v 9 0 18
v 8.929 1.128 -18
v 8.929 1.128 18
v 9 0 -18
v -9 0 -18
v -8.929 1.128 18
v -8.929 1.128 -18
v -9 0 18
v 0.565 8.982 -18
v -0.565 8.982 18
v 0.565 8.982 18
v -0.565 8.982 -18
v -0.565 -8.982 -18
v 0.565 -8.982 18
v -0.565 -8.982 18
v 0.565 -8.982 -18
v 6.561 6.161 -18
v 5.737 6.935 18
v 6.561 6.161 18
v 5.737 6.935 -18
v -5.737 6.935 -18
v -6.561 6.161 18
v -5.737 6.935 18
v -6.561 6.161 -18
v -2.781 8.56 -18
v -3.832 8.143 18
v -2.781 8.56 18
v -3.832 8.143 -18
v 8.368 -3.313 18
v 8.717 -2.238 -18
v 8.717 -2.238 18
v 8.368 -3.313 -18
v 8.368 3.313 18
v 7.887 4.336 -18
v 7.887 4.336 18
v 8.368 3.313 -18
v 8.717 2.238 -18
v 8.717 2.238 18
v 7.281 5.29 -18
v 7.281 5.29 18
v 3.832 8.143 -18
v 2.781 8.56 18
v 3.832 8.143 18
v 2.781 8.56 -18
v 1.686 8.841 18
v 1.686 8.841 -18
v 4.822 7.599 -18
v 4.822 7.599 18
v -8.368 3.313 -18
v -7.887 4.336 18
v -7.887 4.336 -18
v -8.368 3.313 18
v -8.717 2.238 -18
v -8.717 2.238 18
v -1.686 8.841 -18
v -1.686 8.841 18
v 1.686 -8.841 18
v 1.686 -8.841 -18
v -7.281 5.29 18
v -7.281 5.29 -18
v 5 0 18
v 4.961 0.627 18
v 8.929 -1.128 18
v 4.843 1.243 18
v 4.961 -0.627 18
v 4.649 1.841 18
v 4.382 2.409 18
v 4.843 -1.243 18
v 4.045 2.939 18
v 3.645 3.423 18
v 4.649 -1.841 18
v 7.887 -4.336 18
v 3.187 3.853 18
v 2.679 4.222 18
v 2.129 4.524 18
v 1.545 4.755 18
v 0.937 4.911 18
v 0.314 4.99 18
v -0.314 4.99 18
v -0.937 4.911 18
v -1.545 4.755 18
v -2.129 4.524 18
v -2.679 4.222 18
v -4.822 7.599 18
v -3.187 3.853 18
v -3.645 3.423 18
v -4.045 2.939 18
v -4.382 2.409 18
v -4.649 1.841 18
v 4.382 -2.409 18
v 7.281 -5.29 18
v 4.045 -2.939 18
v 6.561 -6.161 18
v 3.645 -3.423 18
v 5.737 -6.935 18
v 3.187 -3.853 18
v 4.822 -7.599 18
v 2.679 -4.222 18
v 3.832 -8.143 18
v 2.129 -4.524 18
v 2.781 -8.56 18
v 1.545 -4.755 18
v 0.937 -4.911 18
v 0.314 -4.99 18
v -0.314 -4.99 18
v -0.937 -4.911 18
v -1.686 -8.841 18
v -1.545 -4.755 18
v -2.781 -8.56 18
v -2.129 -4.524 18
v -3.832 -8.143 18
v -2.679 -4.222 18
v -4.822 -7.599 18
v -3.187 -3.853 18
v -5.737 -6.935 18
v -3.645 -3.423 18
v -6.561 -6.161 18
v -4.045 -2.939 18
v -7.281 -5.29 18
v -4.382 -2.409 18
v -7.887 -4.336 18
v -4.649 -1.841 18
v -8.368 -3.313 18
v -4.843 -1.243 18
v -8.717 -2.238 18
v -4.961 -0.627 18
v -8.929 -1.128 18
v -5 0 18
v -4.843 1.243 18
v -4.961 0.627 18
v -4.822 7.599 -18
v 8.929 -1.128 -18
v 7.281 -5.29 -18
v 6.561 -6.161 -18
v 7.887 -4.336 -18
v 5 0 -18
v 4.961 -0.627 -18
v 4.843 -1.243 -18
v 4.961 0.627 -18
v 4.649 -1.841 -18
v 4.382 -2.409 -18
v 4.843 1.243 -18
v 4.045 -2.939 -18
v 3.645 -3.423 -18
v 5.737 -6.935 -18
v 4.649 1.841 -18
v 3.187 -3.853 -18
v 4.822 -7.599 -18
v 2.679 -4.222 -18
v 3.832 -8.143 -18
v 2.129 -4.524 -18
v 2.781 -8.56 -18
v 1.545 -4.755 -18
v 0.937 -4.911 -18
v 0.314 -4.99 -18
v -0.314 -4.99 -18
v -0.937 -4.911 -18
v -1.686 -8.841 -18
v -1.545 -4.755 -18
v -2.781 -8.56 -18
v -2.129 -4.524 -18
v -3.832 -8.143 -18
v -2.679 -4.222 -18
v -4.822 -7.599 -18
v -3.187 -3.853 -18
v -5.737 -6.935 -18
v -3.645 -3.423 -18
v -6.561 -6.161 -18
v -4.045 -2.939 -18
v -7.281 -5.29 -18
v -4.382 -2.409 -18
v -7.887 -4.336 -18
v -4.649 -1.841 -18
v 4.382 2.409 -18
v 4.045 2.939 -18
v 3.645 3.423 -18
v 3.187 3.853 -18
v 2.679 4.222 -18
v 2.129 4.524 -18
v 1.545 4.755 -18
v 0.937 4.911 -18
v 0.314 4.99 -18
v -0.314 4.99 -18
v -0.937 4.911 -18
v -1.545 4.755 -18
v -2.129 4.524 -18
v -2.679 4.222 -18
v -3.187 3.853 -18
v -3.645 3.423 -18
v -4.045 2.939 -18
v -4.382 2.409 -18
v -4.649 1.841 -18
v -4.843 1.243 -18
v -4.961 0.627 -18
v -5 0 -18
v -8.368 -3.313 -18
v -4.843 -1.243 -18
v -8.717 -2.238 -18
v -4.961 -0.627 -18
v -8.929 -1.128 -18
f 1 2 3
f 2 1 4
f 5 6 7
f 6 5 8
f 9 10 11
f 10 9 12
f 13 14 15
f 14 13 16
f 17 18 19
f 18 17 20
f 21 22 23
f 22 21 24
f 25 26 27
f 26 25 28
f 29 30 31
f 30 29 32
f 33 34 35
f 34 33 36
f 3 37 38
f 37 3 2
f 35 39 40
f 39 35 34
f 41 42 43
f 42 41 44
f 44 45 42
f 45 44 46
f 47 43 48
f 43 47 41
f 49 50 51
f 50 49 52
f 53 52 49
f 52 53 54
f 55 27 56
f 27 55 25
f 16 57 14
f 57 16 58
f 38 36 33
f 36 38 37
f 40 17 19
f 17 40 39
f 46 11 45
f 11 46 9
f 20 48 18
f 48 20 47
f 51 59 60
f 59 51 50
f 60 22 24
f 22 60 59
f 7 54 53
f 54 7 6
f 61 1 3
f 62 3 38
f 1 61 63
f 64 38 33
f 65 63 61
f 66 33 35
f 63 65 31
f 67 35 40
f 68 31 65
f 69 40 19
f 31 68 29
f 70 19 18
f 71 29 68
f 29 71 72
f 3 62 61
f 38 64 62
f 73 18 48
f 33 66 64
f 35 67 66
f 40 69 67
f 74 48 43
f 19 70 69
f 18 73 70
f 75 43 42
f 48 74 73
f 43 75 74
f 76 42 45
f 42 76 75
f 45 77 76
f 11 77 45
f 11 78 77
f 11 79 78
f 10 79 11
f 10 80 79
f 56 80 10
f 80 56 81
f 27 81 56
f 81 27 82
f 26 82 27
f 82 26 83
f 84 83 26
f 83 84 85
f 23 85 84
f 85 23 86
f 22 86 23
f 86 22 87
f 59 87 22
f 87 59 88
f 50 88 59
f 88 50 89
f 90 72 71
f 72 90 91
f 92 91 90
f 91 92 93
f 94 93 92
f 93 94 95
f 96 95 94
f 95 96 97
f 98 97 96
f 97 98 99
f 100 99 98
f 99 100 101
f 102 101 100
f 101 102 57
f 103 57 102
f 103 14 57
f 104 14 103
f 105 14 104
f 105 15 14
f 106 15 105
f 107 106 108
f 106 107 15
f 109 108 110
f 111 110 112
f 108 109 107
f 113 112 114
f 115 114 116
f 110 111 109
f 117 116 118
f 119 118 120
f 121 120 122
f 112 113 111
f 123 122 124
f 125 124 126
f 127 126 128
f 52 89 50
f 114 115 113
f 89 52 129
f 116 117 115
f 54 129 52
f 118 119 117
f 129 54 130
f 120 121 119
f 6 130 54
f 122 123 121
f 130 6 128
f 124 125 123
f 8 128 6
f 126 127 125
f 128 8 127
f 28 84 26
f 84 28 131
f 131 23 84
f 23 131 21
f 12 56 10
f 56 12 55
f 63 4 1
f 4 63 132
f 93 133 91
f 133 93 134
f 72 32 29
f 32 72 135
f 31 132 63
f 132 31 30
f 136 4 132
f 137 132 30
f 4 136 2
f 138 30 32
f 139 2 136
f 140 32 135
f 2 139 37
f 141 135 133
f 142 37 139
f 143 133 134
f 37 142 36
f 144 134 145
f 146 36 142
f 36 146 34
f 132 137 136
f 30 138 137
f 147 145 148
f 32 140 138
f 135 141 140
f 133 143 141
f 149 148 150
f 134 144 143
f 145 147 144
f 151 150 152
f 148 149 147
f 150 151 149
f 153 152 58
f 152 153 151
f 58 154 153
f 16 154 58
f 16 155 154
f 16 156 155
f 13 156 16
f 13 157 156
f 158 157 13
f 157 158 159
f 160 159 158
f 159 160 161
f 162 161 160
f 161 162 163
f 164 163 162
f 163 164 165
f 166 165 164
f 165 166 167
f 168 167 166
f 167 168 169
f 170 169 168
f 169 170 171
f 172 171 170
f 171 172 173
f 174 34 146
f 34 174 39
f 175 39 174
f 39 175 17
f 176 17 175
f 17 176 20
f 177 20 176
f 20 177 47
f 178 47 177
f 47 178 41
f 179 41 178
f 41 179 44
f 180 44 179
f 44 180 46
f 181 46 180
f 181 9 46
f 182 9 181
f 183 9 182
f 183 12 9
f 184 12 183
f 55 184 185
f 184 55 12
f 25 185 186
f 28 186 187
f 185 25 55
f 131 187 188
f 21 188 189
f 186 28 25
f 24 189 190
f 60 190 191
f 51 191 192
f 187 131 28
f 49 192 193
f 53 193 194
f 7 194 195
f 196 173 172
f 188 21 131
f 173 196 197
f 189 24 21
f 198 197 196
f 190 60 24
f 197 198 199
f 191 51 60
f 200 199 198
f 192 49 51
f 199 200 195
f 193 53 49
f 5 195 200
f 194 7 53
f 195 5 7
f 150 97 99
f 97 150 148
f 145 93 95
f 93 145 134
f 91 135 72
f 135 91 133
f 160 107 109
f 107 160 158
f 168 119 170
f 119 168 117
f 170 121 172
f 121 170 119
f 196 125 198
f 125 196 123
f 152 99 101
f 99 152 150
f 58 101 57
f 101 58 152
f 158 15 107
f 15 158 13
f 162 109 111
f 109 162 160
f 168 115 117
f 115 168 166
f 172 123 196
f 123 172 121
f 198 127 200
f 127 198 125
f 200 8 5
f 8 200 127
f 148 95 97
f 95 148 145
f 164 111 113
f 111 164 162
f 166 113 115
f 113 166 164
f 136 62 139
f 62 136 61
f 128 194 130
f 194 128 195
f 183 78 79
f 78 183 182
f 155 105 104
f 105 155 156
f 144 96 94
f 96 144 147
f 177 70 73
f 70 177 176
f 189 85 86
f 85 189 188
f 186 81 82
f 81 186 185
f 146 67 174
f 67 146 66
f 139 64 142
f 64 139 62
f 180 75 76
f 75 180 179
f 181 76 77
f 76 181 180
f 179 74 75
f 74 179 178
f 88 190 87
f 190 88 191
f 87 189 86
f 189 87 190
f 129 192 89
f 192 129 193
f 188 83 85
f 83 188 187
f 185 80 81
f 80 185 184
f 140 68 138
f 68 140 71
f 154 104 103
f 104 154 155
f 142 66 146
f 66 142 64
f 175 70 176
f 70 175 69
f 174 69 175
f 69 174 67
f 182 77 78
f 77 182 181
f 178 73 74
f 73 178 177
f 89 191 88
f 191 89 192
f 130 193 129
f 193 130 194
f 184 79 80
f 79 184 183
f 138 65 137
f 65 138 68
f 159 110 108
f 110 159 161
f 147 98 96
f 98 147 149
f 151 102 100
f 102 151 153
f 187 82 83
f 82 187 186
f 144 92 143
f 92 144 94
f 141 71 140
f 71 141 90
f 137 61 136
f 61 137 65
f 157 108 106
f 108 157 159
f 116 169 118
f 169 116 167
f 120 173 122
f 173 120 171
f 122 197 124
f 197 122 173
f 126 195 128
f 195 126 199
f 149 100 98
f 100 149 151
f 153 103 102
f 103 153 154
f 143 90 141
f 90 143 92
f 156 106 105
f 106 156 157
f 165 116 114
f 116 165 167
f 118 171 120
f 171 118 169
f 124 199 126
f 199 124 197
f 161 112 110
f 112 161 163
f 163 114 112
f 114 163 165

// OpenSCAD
$fn = 50;


difference() {
	union() {
		translate(v = [0, 0, -18.0000000000]) {
			cylinder(h = 36, r = 9.0000000000);
		}
	}
	union() {
		translate(v = [0, 0, -100.0000000000]) {
			cylinder(h = 200, r = 5.0000000000);
		}
	}
}
